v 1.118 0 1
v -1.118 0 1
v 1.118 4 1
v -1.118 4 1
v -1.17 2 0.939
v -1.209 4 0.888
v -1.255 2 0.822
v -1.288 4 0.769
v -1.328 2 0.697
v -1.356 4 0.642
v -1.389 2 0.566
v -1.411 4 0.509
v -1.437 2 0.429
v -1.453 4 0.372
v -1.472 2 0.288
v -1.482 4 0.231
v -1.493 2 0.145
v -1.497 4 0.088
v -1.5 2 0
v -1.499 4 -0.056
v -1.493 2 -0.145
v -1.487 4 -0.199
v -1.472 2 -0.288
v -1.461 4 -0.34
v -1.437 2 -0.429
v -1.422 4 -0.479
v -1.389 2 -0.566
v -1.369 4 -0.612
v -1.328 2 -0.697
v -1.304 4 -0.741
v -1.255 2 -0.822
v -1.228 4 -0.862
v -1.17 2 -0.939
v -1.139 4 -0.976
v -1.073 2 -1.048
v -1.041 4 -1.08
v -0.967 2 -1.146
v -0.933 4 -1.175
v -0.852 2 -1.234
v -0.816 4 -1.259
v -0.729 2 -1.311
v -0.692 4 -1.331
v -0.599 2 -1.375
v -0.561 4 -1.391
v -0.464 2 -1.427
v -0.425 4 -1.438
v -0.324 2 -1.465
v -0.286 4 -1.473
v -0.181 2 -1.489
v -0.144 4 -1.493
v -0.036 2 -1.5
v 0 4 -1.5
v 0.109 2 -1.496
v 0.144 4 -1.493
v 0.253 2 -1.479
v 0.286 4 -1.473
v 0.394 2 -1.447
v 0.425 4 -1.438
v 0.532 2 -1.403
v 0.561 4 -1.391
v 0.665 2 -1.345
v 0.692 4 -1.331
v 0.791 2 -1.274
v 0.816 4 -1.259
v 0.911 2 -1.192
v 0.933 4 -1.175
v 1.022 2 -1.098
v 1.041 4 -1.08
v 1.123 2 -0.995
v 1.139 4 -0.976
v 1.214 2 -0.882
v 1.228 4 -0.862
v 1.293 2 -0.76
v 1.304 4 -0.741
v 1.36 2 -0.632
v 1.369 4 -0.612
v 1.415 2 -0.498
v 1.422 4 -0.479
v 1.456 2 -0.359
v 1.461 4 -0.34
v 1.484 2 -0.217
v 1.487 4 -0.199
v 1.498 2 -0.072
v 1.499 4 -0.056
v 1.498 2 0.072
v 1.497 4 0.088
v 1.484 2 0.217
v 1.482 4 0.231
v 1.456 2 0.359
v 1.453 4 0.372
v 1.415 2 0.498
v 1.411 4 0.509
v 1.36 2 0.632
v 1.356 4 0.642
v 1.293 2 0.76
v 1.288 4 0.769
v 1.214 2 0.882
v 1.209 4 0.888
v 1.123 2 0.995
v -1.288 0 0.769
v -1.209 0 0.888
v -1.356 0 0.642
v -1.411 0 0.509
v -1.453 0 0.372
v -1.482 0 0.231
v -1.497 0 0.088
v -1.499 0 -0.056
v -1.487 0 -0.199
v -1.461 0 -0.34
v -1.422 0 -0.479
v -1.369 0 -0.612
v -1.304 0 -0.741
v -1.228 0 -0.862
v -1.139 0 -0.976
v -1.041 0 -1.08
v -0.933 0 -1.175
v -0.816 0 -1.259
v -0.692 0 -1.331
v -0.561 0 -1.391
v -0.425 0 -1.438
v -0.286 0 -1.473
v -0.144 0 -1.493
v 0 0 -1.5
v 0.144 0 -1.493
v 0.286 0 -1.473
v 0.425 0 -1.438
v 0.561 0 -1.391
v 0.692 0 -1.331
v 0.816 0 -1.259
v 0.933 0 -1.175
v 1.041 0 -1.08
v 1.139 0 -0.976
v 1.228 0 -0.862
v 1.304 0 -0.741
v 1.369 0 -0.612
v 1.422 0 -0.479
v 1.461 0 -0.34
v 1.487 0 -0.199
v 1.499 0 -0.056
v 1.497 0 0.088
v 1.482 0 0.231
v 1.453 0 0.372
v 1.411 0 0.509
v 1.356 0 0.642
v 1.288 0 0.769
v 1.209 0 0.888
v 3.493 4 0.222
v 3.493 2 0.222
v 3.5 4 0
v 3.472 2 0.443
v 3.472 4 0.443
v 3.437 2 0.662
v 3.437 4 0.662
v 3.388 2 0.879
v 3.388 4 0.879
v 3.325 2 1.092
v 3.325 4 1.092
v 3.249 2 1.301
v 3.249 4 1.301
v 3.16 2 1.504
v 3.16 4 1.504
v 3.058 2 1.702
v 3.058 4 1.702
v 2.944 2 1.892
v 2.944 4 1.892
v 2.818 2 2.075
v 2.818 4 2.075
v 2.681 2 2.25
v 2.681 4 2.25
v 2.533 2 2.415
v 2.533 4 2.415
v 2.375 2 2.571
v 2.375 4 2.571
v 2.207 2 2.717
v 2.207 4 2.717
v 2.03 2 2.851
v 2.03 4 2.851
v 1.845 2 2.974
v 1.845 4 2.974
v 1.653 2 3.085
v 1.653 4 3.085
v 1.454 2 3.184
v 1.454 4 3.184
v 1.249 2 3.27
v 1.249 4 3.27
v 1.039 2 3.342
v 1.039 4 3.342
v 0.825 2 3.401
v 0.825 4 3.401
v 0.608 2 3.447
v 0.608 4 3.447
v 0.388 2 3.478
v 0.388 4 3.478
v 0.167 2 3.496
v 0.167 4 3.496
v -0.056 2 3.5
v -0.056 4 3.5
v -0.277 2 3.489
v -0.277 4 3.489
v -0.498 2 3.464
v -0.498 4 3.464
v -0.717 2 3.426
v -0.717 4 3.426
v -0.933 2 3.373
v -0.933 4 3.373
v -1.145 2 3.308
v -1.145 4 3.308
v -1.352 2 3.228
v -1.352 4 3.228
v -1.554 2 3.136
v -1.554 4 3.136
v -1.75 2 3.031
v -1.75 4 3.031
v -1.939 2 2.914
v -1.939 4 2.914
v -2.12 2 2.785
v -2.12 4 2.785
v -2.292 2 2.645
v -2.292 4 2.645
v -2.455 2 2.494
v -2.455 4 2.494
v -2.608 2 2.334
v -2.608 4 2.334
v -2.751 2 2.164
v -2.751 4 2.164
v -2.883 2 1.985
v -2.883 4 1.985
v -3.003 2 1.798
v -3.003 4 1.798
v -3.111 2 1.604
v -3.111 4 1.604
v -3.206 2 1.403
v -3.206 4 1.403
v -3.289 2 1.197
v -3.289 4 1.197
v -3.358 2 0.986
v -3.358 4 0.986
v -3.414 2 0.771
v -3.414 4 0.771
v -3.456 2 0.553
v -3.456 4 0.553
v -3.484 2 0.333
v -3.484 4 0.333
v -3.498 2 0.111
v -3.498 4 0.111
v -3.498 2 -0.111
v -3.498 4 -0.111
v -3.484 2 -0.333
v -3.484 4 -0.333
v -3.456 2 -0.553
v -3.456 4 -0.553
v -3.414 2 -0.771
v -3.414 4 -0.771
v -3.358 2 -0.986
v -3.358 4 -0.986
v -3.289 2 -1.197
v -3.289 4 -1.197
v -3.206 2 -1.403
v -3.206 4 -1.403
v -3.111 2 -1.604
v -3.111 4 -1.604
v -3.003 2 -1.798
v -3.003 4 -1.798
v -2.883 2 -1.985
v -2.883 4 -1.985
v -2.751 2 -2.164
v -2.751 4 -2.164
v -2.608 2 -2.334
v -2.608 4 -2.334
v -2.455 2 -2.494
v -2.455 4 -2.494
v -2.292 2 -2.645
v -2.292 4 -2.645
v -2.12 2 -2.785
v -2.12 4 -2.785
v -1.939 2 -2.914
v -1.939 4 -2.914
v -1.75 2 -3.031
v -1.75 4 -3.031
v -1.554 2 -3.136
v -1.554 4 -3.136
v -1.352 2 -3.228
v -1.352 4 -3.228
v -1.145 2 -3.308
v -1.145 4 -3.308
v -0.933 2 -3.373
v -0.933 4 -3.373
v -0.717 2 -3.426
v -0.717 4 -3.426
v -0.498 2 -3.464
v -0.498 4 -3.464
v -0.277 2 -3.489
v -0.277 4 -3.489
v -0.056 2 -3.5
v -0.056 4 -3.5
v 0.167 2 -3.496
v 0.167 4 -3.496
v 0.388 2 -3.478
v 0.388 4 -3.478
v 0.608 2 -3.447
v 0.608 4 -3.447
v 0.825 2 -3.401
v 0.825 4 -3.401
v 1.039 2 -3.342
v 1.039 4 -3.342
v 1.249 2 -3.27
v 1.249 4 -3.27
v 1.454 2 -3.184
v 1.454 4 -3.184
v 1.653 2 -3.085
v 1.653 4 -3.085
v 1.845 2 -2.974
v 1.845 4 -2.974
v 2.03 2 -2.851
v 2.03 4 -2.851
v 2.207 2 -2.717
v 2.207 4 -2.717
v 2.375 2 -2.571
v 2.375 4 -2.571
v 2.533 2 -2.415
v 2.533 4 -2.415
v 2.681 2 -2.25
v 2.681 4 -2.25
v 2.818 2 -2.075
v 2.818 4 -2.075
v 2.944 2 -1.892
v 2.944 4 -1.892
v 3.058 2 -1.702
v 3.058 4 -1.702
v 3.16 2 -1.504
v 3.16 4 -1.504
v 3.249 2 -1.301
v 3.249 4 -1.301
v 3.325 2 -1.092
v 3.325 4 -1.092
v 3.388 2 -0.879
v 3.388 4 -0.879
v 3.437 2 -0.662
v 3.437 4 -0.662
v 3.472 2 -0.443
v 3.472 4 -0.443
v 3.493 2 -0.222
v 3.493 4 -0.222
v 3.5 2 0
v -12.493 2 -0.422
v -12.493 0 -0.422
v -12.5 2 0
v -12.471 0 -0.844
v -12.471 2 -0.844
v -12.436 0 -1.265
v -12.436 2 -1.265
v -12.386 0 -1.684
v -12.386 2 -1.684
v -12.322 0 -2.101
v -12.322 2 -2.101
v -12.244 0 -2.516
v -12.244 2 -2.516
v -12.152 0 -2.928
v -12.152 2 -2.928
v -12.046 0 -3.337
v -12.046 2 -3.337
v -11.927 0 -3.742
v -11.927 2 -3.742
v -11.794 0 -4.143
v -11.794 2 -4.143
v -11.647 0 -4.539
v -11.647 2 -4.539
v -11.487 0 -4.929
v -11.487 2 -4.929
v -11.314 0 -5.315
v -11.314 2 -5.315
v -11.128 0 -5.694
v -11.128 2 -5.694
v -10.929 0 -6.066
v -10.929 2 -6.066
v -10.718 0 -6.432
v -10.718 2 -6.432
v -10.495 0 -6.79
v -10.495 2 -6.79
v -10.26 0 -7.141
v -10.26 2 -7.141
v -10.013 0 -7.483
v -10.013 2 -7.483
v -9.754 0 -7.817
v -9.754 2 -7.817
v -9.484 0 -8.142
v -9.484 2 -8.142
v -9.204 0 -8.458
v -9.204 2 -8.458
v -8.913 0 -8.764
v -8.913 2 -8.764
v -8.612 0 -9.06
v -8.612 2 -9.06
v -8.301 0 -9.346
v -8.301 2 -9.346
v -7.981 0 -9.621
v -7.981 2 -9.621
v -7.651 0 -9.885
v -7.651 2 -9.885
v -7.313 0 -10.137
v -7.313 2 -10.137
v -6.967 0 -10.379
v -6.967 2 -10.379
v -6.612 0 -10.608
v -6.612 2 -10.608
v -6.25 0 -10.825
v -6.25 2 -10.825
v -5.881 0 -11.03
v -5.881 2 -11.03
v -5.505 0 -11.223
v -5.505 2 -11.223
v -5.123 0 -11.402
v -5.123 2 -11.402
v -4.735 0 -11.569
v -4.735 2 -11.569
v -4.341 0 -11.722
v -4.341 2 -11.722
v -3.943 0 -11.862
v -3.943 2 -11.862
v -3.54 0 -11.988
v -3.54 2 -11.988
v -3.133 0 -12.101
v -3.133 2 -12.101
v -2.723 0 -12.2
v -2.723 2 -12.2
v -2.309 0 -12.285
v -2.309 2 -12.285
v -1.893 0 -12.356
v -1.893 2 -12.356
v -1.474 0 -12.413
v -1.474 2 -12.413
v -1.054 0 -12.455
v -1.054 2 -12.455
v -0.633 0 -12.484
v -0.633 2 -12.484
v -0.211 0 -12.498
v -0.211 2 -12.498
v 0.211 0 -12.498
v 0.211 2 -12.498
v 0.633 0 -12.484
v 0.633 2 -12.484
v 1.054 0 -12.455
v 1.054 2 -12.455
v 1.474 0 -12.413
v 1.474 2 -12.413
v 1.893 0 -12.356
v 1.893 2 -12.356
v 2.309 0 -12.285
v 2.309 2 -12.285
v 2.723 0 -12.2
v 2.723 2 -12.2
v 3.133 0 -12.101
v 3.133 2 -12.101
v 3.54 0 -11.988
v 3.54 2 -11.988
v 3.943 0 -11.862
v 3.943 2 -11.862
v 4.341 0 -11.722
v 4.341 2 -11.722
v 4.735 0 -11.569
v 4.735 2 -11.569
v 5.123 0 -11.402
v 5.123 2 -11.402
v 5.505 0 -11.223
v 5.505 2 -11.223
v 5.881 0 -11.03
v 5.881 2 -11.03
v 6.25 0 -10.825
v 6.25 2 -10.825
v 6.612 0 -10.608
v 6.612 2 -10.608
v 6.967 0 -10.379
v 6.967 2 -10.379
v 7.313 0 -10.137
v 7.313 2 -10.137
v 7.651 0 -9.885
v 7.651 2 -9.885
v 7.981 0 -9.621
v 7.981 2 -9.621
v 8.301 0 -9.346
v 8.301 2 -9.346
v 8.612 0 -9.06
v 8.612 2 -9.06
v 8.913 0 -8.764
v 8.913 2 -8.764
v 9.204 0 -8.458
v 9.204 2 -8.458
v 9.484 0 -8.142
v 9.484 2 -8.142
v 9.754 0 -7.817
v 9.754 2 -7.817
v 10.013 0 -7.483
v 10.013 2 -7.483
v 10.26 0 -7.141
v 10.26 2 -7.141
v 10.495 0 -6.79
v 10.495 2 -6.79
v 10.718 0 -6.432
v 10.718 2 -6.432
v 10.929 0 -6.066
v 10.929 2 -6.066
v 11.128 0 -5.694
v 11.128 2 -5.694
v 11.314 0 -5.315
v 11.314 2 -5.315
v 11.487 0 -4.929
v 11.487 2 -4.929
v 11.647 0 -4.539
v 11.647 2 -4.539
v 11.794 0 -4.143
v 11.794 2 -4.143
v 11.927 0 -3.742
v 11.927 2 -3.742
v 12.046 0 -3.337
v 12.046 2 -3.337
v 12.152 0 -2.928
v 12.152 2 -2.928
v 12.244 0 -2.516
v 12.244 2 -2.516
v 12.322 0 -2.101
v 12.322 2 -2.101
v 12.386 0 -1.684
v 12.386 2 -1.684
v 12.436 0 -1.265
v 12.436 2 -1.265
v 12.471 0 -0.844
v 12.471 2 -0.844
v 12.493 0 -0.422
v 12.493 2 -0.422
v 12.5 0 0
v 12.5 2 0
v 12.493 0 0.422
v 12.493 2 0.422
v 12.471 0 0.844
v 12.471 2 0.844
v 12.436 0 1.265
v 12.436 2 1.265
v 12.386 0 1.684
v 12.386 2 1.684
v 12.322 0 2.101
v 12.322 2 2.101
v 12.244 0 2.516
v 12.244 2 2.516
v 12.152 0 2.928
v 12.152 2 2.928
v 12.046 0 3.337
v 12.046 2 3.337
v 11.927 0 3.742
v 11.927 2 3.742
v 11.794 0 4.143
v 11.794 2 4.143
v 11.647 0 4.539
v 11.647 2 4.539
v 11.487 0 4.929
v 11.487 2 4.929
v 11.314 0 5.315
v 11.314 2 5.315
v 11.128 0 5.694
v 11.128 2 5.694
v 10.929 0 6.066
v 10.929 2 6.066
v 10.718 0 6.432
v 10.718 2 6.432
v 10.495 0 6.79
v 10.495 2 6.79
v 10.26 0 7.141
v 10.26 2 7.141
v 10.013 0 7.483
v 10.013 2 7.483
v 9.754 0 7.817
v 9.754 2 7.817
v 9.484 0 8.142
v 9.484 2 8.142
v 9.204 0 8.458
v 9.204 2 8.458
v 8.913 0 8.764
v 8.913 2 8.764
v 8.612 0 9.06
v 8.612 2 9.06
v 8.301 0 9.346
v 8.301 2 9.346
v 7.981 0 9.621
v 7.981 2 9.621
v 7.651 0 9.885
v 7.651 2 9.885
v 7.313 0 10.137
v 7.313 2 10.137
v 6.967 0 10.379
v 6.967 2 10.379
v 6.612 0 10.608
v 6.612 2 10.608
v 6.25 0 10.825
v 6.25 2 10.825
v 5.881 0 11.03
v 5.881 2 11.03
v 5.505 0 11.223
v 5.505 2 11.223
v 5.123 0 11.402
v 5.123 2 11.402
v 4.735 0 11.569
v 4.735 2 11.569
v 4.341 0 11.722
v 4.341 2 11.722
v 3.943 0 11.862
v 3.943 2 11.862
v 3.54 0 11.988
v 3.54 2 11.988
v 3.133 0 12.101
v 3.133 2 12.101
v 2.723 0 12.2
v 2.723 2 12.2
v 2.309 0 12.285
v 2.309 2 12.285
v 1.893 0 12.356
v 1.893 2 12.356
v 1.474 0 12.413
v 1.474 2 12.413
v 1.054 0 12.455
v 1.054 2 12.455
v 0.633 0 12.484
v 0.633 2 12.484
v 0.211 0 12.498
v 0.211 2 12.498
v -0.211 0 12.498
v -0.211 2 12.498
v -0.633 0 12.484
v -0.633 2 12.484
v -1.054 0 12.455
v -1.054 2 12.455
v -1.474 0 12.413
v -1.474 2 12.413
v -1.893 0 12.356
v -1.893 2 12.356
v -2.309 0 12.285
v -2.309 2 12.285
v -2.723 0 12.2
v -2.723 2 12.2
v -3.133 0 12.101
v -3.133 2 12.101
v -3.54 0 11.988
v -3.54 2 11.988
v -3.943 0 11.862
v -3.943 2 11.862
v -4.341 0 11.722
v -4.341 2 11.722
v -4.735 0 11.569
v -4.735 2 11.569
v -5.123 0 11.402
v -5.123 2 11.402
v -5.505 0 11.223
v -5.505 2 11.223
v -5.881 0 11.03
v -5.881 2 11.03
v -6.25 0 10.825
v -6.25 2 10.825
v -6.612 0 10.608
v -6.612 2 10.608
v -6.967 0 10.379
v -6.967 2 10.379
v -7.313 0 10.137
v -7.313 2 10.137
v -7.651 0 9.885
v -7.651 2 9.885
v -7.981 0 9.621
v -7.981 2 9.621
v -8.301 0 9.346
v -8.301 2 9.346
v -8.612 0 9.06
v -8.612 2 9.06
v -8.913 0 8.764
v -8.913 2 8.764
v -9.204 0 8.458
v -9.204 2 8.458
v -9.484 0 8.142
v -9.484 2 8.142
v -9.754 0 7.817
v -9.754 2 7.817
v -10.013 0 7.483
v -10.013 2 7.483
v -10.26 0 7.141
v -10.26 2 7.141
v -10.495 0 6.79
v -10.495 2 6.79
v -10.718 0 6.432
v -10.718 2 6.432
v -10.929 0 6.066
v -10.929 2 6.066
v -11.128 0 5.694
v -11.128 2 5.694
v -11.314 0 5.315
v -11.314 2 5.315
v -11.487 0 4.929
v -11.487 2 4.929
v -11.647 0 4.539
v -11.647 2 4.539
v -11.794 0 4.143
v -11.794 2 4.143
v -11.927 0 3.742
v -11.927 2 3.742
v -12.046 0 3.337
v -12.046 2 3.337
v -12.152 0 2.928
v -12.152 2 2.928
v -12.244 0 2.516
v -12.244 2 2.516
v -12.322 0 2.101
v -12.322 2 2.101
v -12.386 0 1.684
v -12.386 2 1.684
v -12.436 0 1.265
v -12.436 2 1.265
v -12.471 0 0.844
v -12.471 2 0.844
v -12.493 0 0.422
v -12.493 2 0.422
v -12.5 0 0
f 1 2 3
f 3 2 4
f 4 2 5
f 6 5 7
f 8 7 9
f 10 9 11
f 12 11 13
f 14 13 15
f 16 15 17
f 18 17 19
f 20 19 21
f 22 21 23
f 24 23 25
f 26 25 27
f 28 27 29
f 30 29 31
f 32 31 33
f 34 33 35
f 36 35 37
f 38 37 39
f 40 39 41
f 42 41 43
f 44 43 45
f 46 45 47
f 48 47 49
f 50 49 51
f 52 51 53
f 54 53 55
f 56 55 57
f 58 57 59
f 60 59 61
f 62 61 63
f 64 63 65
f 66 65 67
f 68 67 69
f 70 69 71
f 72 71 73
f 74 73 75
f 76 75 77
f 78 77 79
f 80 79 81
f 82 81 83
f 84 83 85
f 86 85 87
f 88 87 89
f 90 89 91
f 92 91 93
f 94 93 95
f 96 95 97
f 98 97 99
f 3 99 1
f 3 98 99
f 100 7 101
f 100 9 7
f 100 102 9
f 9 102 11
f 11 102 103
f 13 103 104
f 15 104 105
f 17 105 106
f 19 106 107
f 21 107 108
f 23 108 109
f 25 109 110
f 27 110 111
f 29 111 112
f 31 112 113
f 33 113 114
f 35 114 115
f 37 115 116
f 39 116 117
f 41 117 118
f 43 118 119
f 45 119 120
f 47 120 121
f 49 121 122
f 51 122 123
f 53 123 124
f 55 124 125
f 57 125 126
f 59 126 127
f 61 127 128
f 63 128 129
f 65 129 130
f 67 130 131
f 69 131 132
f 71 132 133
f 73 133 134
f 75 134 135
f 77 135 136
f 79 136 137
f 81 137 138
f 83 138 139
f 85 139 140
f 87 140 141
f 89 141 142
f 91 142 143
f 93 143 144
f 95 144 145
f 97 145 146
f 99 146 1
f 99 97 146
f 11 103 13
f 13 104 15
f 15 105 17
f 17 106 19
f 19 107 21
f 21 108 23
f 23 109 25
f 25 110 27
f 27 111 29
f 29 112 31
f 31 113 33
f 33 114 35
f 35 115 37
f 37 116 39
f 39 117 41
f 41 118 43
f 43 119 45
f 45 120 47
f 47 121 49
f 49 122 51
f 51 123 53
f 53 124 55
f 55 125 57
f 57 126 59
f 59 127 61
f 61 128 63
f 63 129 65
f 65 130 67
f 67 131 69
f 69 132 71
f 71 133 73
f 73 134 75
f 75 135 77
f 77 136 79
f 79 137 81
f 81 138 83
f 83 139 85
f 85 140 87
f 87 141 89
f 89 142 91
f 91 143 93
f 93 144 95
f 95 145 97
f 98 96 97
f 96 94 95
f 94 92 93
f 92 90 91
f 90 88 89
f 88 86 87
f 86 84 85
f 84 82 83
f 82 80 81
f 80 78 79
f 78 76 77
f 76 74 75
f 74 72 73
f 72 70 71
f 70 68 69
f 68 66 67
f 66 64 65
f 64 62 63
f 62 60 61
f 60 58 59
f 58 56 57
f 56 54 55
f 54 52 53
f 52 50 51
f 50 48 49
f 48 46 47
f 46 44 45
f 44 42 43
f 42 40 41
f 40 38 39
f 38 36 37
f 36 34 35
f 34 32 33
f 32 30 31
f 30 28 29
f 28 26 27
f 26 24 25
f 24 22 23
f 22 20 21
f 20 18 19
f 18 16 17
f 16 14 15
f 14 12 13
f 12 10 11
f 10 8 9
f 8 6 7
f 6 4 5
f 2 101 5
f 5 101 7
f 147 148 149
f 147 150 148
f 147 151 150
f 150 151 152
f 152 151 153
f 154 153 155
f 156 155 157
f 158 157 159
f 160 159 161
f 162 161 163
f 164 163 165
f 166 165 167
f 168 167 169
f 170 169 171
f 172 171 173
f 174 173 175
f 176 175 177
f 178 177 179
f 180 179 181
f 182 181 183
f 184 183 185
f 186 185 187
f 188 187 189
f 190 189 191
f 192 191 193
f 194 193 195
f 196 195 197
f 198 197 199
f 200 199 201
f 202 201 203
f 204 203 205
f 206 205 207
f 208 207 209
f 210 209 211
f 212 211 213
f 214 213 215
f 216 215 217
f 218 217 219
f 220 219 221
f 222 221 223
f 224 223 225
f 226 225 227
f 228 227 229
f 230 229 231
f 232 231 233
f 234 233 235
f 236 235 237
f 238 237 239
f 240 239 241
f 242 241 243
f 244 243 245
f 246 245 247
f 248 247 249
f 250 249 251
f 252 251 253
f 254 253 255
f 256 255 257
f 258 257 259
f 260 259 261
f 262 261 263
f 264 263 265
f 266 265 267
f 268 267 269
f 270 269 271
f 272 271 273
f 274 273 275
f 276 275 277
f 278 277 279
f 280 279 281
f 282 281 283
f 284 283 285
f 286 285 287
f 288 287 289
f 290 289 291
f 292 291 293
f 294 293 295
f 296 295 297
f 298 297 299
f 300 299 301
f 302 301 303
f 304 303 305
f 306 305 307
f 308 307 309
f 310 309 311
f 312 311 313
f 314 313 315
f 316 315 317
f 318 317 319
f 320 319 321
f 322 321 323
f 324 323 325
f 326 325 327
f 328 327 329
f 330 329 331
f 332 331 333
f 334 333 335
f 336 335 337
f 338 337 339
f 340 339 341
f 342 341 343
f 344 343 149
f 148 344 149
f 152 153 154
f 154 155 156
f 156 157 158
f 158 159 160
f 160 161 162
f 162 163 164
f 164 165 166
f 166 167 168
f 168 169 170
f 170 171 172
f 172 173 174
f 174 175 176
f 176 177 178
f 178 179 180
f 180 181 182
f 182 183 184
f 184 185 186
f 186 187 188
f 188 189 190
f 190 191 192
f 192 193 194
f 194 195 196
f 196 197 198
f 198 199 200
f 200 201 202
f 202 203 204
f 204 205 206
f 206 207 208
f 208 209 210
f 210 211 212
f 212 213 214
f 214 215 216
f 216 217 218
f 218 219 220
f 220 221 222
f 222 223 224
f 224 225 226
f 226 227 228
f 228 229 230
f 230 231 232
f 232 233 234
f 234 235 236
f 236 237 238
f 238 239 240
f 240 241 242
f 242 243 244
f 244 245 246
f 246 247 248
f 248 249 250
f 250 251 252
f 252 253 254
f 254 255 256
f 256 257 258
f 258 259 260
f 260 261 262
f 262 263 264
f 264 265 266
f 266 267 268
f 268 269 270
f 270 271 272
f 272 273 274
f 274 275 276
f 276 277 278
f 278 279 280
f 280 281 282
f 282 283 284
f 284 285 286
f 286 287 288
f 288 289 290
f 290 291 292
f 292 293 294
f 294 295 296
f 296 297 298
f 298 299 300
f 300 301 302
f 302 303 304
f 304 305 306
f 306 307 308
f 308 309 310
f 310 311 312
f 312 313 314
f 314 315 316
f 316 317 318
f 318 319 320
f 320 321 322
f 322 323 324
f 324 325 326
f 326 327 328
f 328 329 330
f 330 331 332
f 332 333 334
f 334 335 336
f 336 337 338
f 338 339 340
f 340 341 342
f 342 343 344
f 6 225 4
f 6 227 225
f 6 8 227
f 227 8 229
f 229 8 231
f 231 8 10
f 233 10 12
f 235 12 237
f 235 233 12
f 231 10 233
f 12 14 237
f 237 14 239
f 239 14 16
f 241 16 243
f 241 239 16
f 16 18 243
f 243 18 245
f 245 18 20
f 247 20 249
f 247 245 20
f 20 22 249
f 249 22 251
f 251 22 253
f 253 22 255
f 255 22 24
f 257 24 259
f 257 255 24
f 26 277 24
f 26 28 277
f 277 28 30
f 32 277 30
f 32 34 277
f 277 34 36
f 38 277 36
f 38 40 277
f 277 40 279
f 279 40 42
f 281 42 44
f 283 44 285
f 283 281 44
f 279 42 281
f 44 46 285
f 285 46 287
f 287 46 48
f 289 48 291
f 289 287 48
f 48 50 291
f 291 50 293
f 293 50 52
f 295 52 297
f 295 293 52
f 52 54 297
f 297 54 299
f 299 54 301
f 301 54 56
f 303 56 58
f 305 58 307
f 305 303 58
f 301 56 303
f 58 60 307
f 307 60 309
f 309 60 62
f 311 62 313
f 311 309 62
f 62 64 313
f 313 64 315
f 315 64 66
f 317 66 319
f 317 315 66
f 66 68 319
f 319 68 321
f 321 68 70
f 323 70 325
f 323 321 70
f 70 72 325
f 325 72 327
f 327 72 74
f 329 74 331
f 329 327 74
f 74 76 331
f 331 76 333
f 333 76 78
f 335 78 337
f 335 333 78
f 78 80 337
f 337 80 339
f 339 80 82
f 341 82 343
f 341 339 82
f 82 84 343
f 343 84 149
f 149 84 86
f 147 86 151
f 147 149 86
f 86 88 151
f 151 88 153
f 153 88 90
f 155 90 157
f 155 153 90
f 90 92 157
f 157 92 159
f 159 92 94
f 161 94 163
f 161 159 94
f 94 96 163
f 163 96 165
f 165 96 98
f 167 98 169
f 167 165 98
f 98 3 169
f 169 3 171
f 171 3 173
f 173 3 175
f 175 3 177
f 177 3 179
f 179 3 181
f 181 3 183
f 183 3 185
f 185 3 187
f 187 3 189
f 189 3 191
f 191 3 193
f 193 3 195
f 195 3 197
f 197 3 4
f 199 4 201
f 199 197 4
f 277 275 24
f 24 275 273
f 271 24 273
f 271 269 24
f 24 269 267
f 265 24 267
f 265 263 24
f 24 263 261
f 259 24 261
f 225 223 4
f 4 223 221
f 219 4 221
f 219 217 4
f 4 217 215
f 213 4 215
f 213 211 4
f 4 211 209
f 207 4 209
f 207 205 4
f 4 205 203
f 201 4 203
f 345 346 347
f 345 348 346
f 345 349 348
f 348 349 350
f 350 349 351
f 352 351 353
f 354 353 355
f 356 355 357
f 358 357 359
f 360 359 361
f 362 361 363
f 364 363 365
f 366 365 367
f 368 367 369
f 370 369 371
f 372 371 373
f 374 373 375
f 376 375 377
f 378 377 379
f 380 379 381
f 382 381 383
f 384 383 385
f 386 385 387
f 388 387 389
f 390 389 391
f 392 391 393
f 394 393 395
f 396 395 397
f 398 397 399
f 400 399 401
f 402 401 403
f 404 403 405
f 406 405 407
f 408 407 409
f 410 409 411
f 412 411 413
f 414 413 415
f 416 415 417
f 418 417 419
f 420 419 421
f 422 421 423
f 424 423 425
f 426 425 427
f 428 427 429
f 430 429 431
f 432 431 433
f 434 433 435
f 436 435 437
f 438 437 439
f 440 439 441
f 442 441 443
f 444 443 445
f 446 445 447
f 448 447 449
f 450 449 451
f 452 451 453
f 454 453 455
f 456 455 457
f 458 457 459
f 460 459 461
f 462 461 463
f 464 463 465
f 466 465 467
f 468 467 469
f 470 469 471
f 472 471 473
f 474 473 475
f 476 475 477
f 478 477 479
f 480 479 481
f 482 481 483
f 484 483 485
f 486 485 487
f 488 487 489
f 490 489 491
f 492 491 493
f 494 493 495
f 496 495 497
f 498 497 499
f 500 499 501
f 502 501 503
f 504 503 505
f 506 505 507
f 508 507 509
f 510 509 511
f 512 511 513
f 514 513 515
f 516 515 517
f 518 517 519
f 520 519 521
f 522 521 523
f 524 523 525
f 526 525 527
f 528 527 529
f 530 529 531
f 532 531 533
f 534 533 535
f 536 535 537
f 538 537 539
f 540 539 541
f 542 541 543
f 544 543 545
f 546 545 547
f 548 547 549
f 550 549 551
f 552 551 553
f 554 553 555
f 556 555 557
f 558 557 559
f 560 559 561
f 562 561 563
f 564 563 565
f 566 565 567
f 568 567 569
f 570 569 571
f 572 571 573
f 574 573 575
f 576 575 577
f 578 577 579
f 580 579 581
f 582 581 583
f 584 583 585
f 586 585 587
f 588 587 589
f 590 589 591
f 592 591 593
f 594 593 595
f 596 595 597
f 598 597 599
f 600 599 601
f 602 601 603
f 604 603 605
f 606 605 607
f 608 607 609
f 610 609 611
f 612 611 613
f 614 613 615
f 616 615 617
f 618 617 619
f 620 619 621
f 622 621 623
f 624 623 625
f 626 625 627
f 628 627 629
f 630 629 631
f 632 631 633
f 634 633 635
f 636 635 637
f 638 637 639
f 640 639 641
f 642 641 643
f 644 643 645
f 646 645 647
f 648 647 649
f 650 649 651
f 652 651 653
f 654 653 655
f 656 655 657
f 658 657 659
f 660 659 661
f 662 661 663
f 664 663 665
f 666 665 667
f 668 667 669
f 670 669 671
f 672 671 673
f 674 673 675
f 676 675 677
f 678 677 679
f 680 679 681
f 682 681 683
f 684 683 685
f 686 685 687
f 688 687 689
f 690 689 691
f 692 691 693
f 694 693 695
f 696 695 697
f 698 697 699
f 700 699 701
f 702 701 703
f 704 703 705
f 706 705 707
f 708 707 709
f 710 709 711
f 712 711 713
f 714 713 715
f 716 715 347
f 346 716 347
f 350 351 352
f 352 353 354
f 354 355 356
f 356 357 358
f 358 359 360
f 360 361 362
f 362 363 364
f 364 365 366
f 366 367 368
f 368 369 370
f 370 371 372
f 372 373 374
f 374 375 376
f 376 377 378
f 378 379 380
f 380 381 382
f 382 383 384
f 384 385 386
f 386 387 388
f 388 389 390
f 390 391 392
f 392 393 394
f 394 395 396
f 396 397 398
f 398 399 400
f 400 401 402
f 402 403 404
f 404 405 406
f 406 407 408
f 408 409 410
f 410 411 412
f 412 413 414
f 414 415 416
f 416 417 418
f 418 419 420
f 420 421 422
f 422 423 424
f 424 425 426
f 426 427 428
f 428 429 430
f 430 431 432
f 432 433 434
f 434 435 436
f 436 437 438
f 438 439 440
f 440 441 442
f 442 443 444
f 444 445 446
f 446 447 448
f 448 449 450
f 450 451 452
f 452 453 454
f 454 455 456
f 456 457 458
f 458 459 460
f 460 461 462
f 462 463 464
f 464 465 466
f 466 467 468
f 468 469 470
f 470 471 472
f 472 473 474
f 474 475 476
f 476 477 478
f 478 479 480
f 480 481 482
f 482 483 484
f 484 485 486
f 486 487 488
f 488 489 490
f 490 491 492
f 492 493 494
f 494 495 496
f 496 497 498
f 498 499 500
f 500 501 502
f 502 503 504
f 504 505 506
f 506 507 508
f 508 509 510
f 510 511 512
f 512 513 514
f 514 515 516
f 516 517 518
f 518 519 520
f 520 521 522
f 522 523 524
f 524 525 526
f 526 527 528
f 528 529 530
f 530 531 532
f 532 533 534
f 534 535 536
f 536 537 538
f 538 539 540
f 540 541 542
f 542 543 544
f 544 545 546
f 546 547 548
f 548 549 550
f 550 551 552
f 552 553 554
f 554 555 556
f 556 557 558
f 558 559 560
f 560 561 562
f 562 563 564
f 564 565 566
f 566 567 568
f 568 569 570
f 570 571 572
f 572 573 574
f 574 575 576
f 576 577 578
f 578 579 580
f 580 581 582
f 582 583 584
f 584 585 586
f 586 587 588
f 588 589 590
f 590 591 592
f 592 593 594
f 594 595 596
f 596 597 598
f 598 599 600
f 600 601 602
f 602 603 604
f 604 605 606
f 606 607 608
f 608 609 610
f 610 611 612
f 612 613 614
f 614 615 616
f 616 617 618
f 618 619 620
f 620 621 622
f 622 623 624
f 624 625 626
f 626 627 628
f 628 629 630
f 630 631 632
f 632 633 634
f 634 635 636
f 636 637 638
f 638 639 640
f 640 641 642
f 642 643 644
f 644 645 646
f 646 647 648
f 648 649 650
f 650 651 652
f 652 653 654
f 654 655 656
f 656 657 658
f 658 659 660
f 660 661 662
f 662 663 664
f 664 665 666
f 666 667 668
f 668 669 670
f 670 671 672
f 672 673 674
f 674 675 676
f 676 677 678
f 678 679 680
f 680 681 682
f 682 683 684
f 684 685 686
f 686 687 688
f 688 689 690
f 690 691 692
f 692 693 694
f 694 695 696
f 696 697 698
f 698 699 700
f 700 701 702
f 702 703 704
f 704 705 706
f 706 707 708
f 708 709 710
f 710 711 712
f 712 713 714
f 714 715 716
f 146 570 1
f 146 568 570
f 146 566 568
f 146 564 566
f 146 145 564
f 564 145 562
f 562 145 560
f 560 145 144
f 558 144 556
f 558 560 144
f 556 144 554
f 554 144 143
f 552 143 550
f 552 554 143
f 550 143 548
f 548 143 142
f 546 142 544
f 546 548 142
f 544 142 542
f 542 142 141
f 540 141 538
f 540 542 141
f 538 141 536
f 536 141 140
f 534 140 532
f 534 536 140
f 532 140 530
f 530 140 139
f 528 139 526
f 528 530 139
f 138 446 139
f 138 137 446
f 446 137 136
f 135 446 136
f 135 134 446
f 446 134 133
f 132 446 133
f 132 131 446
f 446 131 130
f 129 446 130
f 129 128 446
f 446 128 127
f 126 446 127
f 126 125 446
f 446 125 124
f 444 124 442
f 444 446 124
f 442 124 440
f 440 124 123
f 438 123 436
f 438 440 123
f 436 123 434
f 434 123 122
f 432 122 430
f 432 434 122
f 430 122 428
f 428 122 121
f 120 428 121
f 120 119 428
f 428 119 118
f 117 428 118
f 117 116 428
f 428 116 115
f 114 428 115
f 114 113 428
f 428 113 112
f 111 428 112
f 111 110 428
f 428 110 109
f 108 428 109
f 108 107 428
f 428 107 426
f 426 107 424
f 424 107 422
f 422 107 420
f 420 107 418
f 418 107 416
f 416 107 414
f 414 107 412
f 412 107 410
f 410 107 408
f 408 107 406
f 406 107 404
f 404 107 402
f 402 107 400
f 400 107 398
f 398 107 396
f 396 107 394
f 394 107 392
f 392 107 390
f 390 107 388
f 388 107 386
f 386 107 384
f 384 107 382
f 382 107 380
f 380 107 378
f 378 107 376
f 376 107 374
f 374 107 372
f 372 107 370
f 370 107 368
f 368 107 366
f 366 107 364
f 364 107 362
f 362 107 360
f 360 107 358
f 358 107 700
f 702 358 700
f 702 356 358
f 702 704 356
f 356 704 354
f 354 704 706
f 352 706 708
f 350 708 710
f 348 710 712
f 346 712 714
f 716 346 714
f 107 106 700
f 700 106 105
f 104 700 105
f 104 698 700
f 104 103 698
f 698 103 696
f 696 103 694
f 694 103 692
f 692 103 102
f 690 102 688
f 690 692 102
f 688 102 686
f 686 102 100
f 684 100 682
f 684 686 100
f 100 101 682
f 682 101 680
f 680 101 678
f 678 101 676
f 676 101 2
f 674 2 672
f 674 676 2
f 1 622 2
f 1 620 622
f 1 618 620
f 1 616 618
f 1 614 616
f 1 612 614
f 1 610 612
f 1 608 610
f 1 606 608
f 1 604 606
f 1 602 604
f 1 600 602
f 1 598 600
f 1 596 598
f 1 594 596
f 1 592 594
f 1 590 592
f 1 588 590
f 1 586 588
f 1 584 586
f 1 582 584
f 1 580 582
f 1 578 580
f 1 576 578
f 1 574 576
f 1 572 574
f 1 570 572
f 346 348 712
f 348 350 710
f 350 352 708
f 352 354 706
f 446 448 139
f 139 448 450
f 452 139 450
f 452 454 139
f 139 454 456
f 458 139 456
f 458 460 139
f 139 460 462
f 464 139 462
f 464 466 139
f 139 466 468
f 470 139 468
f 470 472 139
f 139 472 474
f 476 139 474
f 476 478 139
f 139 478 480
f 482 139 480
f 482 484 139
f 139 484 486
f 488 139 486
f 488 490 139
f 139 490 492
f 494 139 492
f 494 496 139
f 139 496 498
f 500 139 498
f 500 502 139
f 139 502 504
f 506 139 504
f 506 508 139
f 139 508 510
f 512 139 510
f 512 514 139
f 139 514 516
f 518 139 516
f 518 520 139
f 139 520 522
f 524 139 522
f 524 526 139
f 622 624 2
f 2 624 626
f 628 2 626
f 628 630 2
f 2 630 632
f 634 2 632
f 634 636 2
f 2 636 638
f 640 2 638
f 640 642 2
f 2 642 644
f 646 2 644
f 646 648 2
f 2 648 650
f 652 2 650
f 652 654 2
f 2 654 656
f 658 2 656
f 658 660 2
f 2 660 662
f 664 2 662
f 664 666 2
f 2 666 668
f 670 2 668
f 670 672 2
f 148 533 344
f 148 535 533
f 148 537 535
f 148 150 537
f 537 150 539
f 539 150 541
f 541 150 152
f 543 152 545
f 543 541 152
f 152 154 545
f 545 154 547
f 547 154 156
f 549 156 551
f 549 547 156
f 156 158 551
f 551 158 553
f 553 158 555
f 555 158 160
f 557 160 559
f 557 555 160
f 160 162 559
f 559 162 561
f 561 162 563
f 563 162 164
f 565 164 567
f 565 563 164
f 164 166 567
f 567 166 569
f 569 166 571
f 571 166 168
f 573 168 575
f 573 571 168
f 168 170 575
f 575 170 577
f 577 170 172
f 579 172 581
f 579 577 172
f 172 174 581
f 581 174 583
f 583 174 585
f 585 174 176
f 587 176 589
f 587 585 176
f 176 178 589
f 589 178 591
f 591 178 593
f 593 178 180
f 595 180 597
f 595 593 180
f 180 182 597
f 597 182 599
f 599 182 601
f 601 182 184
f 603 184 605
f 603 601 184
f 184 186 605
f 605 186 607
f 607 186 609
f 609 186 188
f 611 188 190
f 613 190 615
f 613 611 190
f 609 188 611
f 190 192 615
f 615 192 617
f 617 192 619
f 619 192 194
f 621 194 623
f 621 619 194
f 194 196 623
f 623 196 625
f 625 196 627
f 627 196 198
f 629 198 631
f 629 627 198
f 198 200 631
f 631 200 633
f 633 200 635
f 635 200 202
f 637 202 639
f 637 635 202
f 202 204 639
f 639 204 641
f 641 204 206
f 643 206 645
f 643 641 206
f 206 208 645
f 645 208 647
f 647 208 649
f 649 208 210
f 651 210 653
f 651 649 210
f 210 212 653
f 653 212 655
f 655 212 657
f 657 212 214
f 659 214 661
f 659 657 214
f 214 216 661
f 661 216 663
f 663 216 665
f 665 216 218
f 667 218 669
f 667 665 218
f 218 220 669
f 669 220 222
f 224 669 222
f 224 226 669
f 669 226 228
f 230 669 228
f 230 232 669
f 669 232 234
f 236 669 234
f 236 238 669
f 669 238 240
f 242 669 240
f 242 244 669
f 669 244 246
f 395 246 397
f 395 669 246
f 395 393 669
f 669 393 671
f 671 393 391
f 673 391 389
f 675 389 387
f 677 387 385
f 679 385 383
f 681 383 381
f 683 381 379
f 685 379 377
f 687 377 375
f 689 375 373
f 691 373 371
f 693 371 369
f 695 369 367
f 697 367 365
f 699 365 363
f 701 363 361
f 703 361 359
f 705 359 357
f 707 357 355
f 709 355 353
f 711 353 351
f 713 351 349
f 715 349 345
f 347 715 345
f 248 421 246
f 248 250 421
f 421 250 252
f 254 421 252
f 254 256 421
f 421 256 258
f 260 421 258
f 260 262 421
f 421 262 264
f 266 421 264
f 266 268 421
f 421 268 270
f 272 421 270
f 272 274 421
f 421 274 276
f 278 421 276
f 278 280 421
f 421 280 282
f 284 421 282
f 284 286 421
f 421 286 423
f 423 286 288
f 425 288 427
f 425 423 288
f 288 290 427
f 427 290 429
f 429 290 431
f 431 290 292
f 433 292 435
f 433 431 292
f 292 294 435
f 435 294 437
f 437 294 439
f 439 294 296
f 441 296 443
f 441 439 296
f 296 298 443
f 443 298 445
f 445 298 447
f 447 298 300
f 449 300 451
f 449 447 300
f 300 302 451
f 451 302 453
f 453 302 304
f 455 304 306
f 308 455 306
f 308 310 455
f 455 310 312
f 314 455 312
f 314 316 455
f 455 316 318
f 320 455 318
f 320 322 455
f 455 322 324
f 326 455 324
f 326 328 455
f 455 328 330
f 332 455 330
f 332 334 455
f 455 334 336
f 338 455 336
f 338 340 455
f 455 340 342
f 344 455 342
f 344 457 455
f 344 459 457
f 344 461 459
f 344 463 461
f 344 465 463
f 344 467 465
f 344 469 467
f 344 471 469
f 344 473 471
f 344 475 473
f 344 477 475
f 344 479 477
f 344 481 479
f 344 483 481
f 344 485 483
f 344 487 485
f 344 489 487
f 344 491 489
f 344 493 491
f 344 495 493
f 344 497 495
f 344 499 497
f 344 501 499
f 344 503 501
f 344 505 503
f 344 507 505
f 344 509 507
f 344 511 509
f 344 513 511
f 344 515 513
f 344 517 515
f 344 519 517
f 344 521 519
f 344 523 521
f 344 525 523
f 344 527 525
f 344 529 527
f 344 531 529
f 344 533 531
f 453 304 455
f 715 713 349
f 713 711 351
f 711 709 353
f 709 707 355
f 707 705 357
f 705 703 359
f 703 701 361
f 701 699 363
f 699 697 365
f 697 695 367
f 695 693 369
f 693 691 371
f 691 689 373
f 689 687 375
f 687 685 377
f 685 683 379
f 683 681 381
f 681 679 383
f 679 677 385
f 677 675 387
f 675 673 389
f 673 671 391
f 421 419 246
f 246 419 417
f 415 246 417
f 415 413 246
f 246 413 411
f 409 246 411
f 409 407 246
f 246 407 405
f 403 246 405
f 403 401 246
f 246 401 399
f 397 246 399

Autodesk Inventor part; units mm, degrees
ref_plane "YZ Plane" through (0, 0, 0) normal (1, 0, 0) x (0, 1, 0)
ref_plane "XZ Plane" through (0, 0, 0) normal (0, 1, 0) x (-1, 0, 0)
ref_plane "XY Plane" through (0, 0, 0) normal (0, 0, 1) x (1, 0, 0)
sketch "Esquisse1" plane through (0, 0, 0) normal (0, 1, 0) x (-1, 0, 0)
  circle A0 centre (0, 0) radius 12.5
  dimension "d0" = 25
extrude "Extrusion1" add sketch "Esquisse1" along normal blind 2
sketch "Esquisse2" plane through (0, 2, 0) normal (0, 1, 0) x (1, 0, 0)
  circle A0 centre (0, 0) radius 12.5 projected
  circle A1 centre (0, 0) radius 3.5
  dimension "d3" = 7
extrude "Extrusion2" add sketch "Esquisse2" along normal blind 2 contours A1
sketch "Esquisse3" plane through (0, 4, 0) normal (0, 1, 0) x (1, 0, 0)
  circle A0 centre (0, 0) radius 3.5 projected
  circle A1 centre (0, 0) radius 1.5
  line L0 (-1.118, -1) -> (1.118, -1)
  dimension "d6" = 3
  dimension "d7" = 2.5
extrude "Extrusion3" cut sketch "Esquisse3" against normal through all contours A1 L0 picked at (0.0594, -0.1702)
properties part number "Poulie2"
